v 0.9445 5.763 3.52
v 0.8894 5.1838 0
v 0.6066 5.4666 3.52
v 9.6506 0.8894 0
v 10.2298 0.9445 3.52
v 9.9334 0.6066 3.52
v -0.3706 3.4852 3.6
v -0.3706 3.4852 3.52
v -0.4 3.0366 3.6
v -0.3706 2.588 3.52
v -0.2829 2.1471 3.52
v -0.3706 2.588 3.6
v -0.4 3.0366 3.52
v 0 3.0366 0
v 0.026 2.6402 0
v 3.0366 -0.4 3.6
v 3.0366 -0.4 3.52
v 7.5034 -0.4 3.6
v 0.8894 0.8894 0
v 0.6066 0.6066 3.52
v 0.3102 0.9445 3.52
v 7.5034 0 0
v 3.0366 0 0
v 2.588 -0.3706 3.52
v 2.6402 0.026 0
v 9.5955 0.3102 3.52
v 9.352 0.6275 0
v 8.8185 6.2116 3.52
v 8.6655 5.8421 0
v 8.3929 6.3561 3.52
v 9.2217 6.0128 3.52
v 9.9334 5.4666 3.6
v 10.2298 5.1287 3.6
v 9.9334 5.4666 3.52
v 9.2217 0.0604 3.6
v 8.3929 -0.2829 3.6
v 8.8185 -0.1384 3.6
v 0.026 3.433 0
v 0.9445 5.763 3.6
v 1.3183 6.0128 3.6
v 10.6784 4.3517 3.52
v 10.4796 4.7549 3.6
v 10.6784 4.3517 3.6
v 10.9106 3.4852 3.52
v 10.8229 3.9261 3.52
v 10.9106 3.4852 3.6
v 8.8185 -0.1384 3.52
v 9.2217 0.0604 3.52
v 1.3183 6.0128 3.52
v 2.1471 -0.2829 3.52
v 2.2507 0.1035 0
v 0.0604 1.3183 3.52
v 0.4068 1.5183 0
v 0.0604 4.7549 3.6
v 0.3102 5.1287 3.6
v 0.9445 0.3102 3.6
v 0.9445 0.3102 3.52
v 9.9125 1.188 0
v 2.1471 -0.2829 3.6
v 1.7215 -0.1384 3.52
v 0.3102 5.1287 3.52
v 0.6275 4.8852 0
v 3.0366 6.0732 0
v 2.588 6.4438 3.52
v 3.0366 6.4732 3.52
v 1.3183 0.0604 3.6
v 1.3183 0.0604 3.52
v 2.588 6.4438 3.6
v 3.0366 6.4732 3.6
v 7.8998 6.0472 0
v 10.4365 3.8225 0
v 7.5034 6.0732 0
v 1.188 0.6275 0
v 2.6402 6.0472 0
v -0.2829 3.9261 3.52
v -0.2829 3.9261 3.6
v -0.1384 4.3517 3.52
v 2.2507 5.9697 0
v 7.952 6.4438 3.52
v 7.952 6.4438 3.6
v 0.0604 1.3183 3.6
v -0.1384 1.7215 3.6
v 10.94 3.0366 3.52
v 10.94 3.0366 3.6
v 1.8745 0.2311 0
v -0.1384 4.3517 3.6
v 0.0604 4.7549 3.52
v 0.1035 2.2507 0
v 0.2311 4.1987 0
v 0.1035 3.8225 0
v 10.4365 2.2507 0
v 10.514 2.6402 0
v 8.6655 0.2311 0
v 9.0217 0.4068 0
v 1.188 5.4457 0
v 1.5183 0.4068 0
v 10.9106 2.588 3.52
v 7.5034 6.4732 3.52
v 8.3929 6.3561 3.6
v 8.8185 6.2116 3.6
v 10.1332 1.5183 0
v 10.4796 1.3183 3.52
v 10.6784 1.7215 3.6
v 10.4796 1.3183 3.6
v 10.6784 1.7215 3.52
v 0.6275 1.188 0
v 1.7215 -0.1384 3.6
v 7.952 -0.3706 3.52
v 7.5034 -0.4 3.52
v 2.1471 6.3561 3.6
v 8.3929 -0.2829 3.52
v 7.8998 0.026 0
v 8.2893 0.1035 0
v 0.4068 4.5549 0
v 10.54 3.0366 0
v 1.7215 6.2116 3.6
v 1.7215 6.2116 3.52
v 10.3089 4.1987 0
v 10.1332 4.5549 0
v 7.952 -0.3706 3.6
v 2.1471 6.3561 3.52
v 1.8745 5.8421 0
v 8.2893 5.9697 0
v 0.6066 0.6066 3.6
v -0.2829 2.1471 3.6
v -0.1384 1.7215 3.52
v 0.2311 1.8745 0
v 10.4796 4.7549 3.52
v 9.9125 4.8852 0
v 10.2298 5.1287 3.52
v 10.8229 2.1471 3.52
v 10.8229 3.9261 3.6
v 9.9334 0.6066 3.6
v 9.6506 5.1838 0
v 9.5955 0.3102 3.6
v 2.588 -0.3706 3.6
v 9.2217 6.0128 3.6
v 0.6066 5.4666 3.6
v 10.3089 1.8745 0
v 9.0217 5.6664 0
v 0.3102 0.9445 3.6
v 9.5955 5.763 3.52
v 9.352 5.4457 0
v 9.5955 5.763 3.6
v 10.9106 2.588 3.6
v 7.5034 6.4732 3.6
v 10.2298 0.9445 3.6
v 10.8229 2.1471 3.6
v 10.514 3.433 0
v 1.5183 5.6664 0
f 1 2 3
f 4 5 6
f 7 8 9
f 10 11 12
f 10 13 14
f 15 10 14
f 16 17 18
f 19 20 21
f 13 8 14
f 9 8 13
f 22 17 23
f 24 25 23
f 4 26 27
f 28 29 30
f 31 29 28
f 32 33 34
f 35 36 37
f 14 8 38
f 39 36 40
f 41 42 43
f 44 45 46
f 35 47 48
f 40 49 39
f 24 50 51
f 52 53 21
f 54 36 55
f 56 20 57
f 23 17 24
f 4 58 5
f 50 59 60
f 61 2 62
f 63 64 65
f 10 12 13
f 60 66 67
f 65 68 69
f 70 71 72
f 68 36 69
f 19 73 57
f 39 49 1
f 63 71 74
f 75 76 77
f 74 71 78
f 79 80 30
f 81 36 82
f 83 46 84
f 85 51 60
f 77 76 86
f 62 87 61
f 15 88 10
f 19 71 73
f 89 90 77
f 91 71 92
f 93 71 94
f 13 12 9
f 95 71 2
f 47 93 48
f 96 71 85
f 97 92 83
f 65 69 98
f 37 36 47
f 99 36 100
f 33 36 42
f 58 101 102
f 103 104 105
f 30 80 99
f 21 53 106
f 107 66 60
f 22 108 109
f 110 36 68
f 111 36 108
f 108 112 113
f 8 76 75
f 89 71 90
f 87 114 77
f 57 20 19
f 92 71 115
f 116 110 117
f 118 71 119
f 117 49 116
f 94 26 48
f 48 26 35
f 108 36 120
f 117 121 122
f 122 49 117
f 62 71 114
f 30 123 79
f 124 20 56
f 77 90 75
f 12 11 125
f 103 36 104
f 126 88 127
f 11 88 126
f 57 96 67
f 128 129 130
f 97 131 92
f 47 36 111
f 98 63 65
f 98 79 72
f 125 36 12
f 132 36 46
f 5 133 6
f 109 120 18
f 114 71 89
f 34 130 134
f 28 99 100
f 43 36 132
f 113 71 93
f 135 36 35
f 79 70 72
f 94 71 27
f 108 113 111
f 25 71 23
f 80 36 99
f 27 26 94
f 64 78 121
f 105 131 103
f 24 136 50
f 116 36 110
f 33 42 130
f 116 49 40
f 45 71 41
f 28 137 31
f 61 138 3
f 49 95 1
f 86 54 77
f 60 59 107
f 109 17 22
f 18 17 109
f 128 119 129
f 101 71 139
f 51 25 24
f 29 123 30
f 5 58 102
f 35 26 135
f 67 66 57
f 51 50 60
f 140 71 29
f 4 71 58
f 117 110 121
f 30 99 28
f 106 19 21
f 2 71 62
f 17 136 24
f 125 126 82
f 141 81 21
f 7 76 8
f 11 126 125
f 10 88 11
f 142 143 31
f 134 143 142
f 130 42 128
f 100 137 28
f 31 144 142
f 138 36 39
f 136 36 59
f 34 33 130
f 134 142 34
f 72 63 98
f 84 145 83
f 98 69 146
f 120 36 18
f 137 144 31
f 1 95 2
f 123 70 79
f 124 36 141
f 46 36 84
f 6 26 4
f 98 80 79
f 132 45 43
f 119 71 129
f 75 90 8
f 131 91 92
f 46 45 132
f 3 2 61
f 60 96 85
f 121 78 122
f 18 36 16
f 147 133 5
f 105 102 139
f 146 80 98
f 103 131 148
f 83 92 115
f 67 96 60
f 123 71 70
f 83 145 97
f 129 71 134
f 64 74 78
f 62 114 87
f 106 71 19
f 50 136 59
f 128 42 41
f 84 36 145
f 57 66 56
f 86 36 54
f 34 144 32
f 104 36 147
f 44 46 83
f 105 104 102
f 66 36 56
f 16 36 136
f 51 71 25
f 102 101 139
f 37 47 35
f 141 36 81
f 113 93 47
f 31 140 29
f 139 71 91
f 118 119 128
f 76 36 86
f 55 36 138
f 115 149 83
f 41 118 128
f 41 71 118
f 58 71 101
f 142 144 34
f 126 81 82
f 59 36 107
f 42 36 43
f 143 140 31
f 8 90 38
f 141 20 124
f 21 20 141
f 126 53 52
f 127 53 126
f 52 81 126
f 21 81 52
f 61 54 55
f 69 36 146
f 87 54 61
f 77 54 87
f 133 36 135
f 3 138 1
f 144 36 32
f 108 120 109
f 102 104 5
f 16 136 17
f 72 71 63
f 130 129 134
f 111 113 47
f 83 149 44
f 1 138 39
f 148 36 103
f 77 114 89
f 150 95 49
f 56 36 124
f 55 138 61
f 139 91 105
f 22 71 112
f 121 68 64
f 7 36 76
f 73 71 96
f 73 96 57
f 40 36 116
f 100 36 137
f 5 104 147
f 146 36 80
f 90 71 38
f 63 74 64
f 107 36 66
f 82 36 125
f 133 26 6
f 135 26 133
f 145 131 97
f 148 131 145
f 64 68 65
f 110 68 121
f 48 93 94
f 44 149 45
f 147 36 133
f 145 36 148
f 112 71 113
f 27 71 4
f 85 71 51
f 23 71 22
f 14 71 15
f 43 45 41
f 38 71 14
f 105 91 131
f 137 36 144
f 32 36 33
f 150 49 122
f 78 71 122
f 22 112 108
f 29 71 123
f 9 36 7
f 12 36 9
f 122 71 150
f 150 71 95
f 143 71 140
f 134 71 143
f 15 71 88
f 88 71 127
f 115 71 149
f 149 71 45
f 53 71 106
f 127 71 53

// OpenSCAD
// file: dims.scad
// =============================================================================
// PLACEHOLDER dimensions — Option 1 replace-face stack
// =============================================================================
// ESTIMATED millimetres from refs/flat/DIMENSIONS.md (170 × 72.3, 2.35:1).
// Callipers are UNKNOWN. Every critical size is a guess until the OEM face
// and cluster bay are measured. This is NOT a verified AP1 drop-in.
//
// Origin (OpenSCAD): bottom-left of the module bounding box, Z toward driver.
// DIMENSIONS.md / pygame use top-left percentages — convert with y_from_top().
// =============================================================================

$fn = 48;
eps = 0.08;

// --- locked flat elevation (ESTIMATED mm from DIMENSIONS.md) ----------------
face_w = 170.0;             // ESTIMATED — TODO measure OEM face width
face_h = 72.3;              // ESTIMATED — 170 / 2.35; TODO measure height
face_aspect = 2.35;         // lock; do not invent a new family

step_w_pct = 0.044;         // rectangular side-notch depth
notch_top_pct = 0.58;       // from module top (OEM lock)
notch_bot_pct = 0.72;
arch_rise_pct = 0.28;       // y% = 28 * u² from the module top
arch_steps = 40;

lcd_inset_x_pct = 0.010;    // extra inset inside the notch
lcd_top_pct = 0.055;
lcd_bottom_pct = 0.76;      // just under TEMP / FUEL
lcd_spring_inset_pct = 0.02;
lcd_frame_mm = 1.0;         // PLACEHOLDER — keeps the mask one piece (see outline)

temp_x_pct = 0.075;
temp_y_pct = 0.72;
fuel_x_pct = 0.745;
fuel_y_pct = 0.72;
bar_w_pct = 0.180;
bar_h_pct = 0.030;

speed_x_pct = 0.50;
speed_y_pct = 0.40;

lamp_y_pct = 0.805;         // hardware-strip centre-line
bezel_h_pct = 0.175;
lamp_w_pct = 0.50;          // PLACEHOLDER — telltale pack not callipered
lamp_h_from_bezel = 0.58;

btn_pad_x_pct = 0.018;
rocker_w_pct = 0.092;
trip_w_pct = 0.062;
btn_h_from_bezel = 0.48;
sel_gap_mm = 1.0;           // PLACEHOLDER (UI uses ~10 px on a 1920 canvas)

tach_slots = 10;            // 0..9 placeholder windows
tach_slot_w = 4.2;          // PLACEHOLDER mm
tach_slot_h = 5.5;          // PLACEHOLDER mm
tach_slot_inset = 3.2;      // PLACEHOLDER — inward from outer arch

// --- stack thicknesses (ALL PLACEHOLDER / TODO measure) ---------------------
face_t = 2.0;               // PLACEHOLDER acrylic / printed mask
tray_h = 12.0;              // PLACEHOLDER overall backlight tray
floor_t = 1.6;              // PLACEHOLDER backscreen floor
diffuser_t = 1.2;           // PLACEHOLDER opal sheet (bought, not printed)
wall = 2.0;                 // PLACEHOLDER tray wall
face_pocket_clear = 0.35;   // PLACEHOLDER slip around dropped-in face
lcd_pocket_clear = 0.40;    // PLACEHOLDER
cable_w = 16.0;             // PLACEHOLDER — FPC / tail location UNKNOWN
cable_h = 4.0;              // PLACEHOLDER

align_pin_d = 2.0;          // PLACEHOLDER — holes only; no printed bosses
align_hole_d = 2.3;         // PLACEHOLDER — do not drill the bay from this
align_pin_h = 2.6;          // PLACEHOLDER — unused until a pin is measured
align_boss_d = 4.4;         // PLACEHOLDER — unused (web/tray stay separate)

button_clear = 0.40;        // PLACEHOLDER hole oversize
button_cap_t = 2.4;         // PLACEHOLDER proud cap
button_flange_t = 1.2;      // PLACEHOLDER retention flange
button_flange_extra = 1.6;  // PLACEHOLDER radial flange beyond cap
button_stem_d = 3.0;        // PLACEHOLDER — switch model UNKNOWN
button_stem_h = 5.0;        // PLACEHOLDER — travel / switch height UNKNOWN
rocker_groove_w = 0.80;
rocker_groove_d = 1.10;

stem_well_d = 6.0;          // PLACEHOLDER switch well in the tray
stem_well_h = 7.0;          // PLACEHOLDER

// --- derived (still ESTIMATED; inherit the TODOs above) ---------------------
step_w = face_w * step_w_pct;
arch_rise = face_h * arch_rise_pct;
spring_y = face_h * (1 - arch_rise_pct);
notch_top_y = face_h * (1 - notch_top_pct);
notch_bot_y = face_h * (1 - notch_bot_pct);

lcd_x = step_w + face_w * lcd_inset_x_pct;
lcd_w = face_w - 2 * step_w - 2 * face_w * lcd_inset_x_pct;
lcd_peak_y = face_h * (1 - lcd_top_pct);
lcd_bot_y = face_h * (1 - lcd_bottom_pct);
lcd_spring_y = face_h * (1 - (arch_rise_pct - lcd_spring_inset_pct));

bezel_h = face_h * bezel_h_pct;
btn_h = bezel_h * btn_h_from_bezel;
btn_y_from_top = face_h * lamp_y_pct + (bezel_h - btn_h) / 2;
btn_y = face_h - btn_y_from_top - btn_h;

rocker_x = face_w * btn_pad_x_pct;
rocker_w = face_w * rocker_w_pct;
trip_w = face_w * trip_w_pct;
trip_x = face_w - face_w * btn_pad_x_pct - trip_w;
sel_x = trip_x - trip_w - sel_gap_mm;

lamp_w = face_w * lamp_w_pct;
lamp_h = bezel_h * lamp_h_from_bezel;
lamp_x = (face_w - lamp_w) / 2;
lamp_y_from_top = face_h * lamp_y_pct - lamp_h / 2;
lamp_y = face_h - lamp_y_from_top - lamp_h;

temp_x = face_w * temp_x_pct;
temp_w = face_w * bar_w_pct;
temp_h = face_h * bar_h_pct;
temp_y = face_h * (1 - temp_y_pct - bar_h_pct);

fuel_x = face_w * fuel_x_pct;
fuel_w = temp_w;
fuel_h = temp_h;
fuel_y = temp_y;

face_rebate_z = tray_h - face_t;
diffuser_z = floor_t;

function y_from_top(pct) = face_h * (1 - pct);

function arch_xy(u, x0, x1, y_peak, y_spring) =
    let (
        t = (u + 1) / 2,
        x = x0 + (x1 - x0) * t,
        y = y_peak - (y_peak - y_spring) * u * u
    )
    [x, y];
// file: outline.scad
// =============================================================================
// 2D OEM silhouette + window helpers (replace-face)
// =============================================================================
// Matches refs/flat/DIMENSIONS.md and src/gauge_ui.py hood_outer_points():
// flat bottom, rectangular 58–72% notches, parabola y% = 28 u².
// All sizes still ESTIMATED / PLACEHOLDER — see dims.scad.
// =============================================================================

include <dims.scad>

function arch_points(x0, x1, y_peak, y_spring, n = arch_steps) =
    [for (i = [0 : n])
        let (t = i / n, u = 2 * t - 1)
        [x0 + (x1 - x0) * t, y_peak - (y_peak - y_spring) * u * u]
    ];

// Counter-clockwise from bottom-left. Notch-top is colinear with the inset
// side; kept so the point list matches the pygame lock.
function hood_points() =
    concat(
        [
            [0, 0],
            [face_w, 0],
            [face_w, notch_bot_y],
            [face_w - step_w, notch_bot_y],
            [face_w - step_w, notch_top_y],
            [face_w - step_w, spring_y]
        ],
        arch_points(face_w - step_w, step_w, face_h, spring_y),
        [
            [step_w, spring_y],
            [step_w, notch_top_y],
            [step_w, notch_bot_y],
            [0, notch_bot_y]
        ]
    );

function lcd_points() =
    concat(
        [
            [lcd_x, lcd_bot_y],
            [lcd_x + lcd_w, lcd_bot_y],
            [lcd_x + lcd_w, lcd_spring_y]
        ],
        arch_points(lcd_x + lcd_w, lcd_x, lcd_peak_y, lcd_spring_y),
        [[lcd_x, lcd_spring_y]]
    );

module hood_2d() {
    polygon(hood_points());
}

module lcd_2d() {
    polygon(lcd_points());
}

module lcd_window_2d() {
    // Keep a continuous frame — the raw LCD polygon breaches the hood
    // arch at both springs (lcd_spring sits above hood spring).
    intersection() {
        offset(delta = -lcd_frame_mm)
            hood_2d();
        lcd_2d();
    }
}

module stadium_2d(w, h) {
    r = min(w, h) / 2;
    hull() {
        translate([r, r]) circle(r = r);
        translate([w - r, r]) circle(r = r);
    }
}

module rounded_rect_2d(w, h, r) {
    rr = min(r, w / 2, h / 2);
    hull() {
        translate([rr, rr]) circle(r = rr);
        translate([w - rr, rr]) circle(r = rr);
        translate([rr, h - rr]) circle(r = rr);
        translate([w - rr, h - rr]) circle(r = rr);
    }
}

module tach_slots_2d() {
    // PLACEHOLDER windows along the outer arch (0–9). Not OEM digit geometry.
    x0 = step_w;
    x1 = face_w - step_w;
    for (i = [0 : tach_slots - 1]) {
        t = i / (tach_slots - 1);
        u = (2 * t - 1) * 0.82;     // keep slots off the inset side walls
        p = arch_xy(u, x0, x1, face_h, spring_y);
        translate([p[0] - tach_slot_w / 2, p[1] - tach_slot_h - tach_slot_inset])
            rounded_rect_2d(tach_slot_w, tach_slot_h, 0.6);
    }
}

module lamp_window_2d() {
    translate([lamp_x, lamp_y])
        rounded_rect_2d(lamp_w, lamp_h, 1.2);
}

module button_caps_2d(extra = 0) {
    translate([rocker_x - extra, btn_y - extra])
        stadium_2d(rocker_w + 2 * extra, btn_h + 2 * extra);
    translate([sel_x - extra, btn_y - extra])
        stadium_2d(trip_w + 2 * extra, btn_h + 2 * extra);
    translate([trip_x - extra, btn_y - extra])
        stadium_2d(trip_w + 2 * extra, btn_h + 2 * extra);
}

// Horizontal flanking envelopes (LCD-drawn). w >> h — never a vertical stack.
// Sit inside the LCD aperture, so they are not acrylic-mask through-windows.
module temp_bar_2d() {
    translate([temp_x, temp_y])
        rounded_rect_2d(temp_w, temp_h, min(0.4, temp_h / 2));
}

module fuel_bar_2d() {
    translate([fuel_x, fuel_y])
        rounded_rect_2d(fuel_w, fuel_h, min(0.4, fuel_h / 2));
}

module gauge_bars_2d() {
    temp_bar_2d();
    fuel_bar_2d();
}

// Four PLACEHOLDER pins in the bottom bezel (not in the LCD). Fiction until measured.
function align_xy() = [
    [rocker_x + rocker_w + 4.0, 3.2],
    [sel_x - 4.0, 3.2],
    [rocker_x + rocker_w + 4.0, lcd_bot_y - 3.0],
    [sel_x - 4.0, lcd_bot_y - 3.0]
];

module align_holes_2d(d = align_hole_d) {
    for (p = align_xy())
        translate(p) circle(d = d);
}

function stem_xy() = [
    [rocker_x + rocker_w * 0.28, btn_y + btn_h / 2],
    [rocker_x + rocker_w * 0.72, btn_y + btn_h / 2],
    [sel_x + trip_w / 2, btn_y + btn_h / 2],
    [trip_x + trip_w / 2, btn_y + btn_h / 2]
];
// file: parts.scad
// =============================================================================
// 3D printable modules — Option 1 replace-face stack
// =============================================================================
// One module = one solid. Downstream Blender remesh is expected; this file
// stays parametric. Callipers UNKNOWN. Not a verified AP1 drop-in.
//
// Cabin-facing hard parts: PETG or ASA. Do NOT use PLA in the cabin.
// Buttons: TPU 95A or cast silicone — not OEM rubber.
// =============================================================================

include <outline.scad>

module _through(h) {
    translate([0, 0, -eps])
        linear_extrude(h + 2 * eps)
            children();
}

module _cowl_web_2d() {
    // Inset so the web never shares an edge with the tray wall.
    difference() {
        offset(delta = -0.45)
            hood_2d();
        offset(delta = 0.35)
            lcd_window_2d();
        tach_slots_2d();
        offset(delta = 0.4)
            lamp_window_2d();
        button_caps_2d(1.2);
        align_holes_2d(align_hole_d + 0.8);
    }
}

module backlight() {
    // Tray shell only — one difference, no unioned ribs or pins.
    // Outer rim is offset(wall) around the 170×72.3 silhouette: a print wall,
    // NOT a measured bay clip and NOT a claimed AP1 fit.
    cavity_h = face_rebate_z - floor_t - 0.06;

    difference() {
        linear_extrude(tray_h)
            offset(delta = wall)
                hood_2d();

        translate([0, 0, face_rebate_z])
            linear_extrude(face_t + 1)
                offset(delta = face_pocket_clear)
                    hood_2d();

        translate([0, 0, floor_t])
            linear_extrude(cavity_h)
                hood_2d();

        // Switch wells — model UNKNOWN
        for (p = stem_xy())
            translate([p[0], p[1], -eps])
                cylinder(h = stem_well_h + eps, d = stem_well_d);

        // Cable / FPC escape — LOCATION UNKNOWN
        translate([
            face_w / 2 - cable_w / 2,
            -wall - eps,
            floor_t
        ])
            cube([cable_w, wall + 2 * eps, cable_h]);

        _through(tray_h)
            align_holes_2d();
    }
}

module backlight_web() {
    // Separate cowl-band insert. Drops on the tray floor. One extrusion.
    linear_extrude(min(3.8, face_rebate_z - floor_t - 0.5))
        _cowl_web_2d();
}

module acrylic_face() {
    // Mask plate — through-windows only. No back rebates (cleaner remesh).
    // Production: laser acrylic. Print proxy: PETG or ASA.
    difference() {
        linear_extrude(face_t)
            hood_2d();

        _through(face_t)
            lcd_window_2d();
        _through(face_t)
            tach_slots_2d();
        _through(face_t)
            lamp_window_2d();
        _through(face_t)
            button_caps_2d(button_clear);
        _through(face_t)
            align_holes_2d();
    }
}

module _button_solid(w, flange_extra) {
    // Single hull: cap → flange. No stem (switch UNKNOWN — add after measure).
    hull() {
        linear_extrude(eps)
            stadium_2d(w, btn_h);
        translate([0, 0, button_cap_t - eps])
            linear_extrude(eps)
                stadium_2d(w, btn_h);
        translate([
            -flange_extra,
            -flange_extra,
            button_cap_t + button_flange_t - eps
        ])
            linear_extrude(eps)
                stadium_2d(
                    w + 2 * flange_extra,
                    btn_h + 2 * flange_extra
                );
    }
}

module rocker_button() {
    difference() {
        _button_solid(rocker_w, button_flange_extra);
        translate([rocker_w / 2 - rocker_groove_w / 2, -eps, -eps])
            cube([rocker_groove_w, btn_h + 2 * eps, rocker_groove_d + eps]);
    }
}

module oval_button() {
    _button_solid(trip_w, min(button_flange_extra, sel_gap_mm * 0.4));
}

module sel_button() {
    oval_button();
}

module trip_button() {
    oval_button();
}

module rubber_buttons_print() {
    // F5 plate preview only — do not export this as one STL.
    rocker_button();
    translate([rocker_w + 8, 0, 0])
        sel_button();
    translate([rocker_w + 8 + trip_w + 8, 0, 0])
        trip_button();
}

module rubber_buttons_placed() {
    translate([0, 0, button_cap_t * 0.35])
        mirror([0, 0, 1]) {
            translate([rocker_x, btn_y, 0])
                rocker_button();
            translate([sel_x, btn_y, 0])
                sel_button();
            translate([trip_x, btn_y, 0])
                trip_button();
        }
}

module assembly(explode = 0) {
    // F5 preview only. Not a printable mesh.
    color([0.22, 0.22, 0.24])
        backlight();
    color([0.55, 0.52, 0.48])
        translate([0, 0, floor_t + explode * 0.35])
            backlight_web();
    color([0.82, 0.80, 0.74, 0.55])
        translate([0, 0, face_rebate_z + explode])
            acrylic_face();
    color([0.12, 0.12, 0.12])
        translate([0, 0, tray_h + explode * 2])
            rubber_buttons_placed();
}
// main file
// =============================================================================
// PLACEHOLDER — TRIP oval (Option 1 replace-face)
// =============================================================================
// One solid. Callipers UNKNOWN. Not OEM rubber.
// Print in TPU 95A or cast silicone. Do NOT use PLA.
// =============================================================================

include <parts.scad>
trip_button();
